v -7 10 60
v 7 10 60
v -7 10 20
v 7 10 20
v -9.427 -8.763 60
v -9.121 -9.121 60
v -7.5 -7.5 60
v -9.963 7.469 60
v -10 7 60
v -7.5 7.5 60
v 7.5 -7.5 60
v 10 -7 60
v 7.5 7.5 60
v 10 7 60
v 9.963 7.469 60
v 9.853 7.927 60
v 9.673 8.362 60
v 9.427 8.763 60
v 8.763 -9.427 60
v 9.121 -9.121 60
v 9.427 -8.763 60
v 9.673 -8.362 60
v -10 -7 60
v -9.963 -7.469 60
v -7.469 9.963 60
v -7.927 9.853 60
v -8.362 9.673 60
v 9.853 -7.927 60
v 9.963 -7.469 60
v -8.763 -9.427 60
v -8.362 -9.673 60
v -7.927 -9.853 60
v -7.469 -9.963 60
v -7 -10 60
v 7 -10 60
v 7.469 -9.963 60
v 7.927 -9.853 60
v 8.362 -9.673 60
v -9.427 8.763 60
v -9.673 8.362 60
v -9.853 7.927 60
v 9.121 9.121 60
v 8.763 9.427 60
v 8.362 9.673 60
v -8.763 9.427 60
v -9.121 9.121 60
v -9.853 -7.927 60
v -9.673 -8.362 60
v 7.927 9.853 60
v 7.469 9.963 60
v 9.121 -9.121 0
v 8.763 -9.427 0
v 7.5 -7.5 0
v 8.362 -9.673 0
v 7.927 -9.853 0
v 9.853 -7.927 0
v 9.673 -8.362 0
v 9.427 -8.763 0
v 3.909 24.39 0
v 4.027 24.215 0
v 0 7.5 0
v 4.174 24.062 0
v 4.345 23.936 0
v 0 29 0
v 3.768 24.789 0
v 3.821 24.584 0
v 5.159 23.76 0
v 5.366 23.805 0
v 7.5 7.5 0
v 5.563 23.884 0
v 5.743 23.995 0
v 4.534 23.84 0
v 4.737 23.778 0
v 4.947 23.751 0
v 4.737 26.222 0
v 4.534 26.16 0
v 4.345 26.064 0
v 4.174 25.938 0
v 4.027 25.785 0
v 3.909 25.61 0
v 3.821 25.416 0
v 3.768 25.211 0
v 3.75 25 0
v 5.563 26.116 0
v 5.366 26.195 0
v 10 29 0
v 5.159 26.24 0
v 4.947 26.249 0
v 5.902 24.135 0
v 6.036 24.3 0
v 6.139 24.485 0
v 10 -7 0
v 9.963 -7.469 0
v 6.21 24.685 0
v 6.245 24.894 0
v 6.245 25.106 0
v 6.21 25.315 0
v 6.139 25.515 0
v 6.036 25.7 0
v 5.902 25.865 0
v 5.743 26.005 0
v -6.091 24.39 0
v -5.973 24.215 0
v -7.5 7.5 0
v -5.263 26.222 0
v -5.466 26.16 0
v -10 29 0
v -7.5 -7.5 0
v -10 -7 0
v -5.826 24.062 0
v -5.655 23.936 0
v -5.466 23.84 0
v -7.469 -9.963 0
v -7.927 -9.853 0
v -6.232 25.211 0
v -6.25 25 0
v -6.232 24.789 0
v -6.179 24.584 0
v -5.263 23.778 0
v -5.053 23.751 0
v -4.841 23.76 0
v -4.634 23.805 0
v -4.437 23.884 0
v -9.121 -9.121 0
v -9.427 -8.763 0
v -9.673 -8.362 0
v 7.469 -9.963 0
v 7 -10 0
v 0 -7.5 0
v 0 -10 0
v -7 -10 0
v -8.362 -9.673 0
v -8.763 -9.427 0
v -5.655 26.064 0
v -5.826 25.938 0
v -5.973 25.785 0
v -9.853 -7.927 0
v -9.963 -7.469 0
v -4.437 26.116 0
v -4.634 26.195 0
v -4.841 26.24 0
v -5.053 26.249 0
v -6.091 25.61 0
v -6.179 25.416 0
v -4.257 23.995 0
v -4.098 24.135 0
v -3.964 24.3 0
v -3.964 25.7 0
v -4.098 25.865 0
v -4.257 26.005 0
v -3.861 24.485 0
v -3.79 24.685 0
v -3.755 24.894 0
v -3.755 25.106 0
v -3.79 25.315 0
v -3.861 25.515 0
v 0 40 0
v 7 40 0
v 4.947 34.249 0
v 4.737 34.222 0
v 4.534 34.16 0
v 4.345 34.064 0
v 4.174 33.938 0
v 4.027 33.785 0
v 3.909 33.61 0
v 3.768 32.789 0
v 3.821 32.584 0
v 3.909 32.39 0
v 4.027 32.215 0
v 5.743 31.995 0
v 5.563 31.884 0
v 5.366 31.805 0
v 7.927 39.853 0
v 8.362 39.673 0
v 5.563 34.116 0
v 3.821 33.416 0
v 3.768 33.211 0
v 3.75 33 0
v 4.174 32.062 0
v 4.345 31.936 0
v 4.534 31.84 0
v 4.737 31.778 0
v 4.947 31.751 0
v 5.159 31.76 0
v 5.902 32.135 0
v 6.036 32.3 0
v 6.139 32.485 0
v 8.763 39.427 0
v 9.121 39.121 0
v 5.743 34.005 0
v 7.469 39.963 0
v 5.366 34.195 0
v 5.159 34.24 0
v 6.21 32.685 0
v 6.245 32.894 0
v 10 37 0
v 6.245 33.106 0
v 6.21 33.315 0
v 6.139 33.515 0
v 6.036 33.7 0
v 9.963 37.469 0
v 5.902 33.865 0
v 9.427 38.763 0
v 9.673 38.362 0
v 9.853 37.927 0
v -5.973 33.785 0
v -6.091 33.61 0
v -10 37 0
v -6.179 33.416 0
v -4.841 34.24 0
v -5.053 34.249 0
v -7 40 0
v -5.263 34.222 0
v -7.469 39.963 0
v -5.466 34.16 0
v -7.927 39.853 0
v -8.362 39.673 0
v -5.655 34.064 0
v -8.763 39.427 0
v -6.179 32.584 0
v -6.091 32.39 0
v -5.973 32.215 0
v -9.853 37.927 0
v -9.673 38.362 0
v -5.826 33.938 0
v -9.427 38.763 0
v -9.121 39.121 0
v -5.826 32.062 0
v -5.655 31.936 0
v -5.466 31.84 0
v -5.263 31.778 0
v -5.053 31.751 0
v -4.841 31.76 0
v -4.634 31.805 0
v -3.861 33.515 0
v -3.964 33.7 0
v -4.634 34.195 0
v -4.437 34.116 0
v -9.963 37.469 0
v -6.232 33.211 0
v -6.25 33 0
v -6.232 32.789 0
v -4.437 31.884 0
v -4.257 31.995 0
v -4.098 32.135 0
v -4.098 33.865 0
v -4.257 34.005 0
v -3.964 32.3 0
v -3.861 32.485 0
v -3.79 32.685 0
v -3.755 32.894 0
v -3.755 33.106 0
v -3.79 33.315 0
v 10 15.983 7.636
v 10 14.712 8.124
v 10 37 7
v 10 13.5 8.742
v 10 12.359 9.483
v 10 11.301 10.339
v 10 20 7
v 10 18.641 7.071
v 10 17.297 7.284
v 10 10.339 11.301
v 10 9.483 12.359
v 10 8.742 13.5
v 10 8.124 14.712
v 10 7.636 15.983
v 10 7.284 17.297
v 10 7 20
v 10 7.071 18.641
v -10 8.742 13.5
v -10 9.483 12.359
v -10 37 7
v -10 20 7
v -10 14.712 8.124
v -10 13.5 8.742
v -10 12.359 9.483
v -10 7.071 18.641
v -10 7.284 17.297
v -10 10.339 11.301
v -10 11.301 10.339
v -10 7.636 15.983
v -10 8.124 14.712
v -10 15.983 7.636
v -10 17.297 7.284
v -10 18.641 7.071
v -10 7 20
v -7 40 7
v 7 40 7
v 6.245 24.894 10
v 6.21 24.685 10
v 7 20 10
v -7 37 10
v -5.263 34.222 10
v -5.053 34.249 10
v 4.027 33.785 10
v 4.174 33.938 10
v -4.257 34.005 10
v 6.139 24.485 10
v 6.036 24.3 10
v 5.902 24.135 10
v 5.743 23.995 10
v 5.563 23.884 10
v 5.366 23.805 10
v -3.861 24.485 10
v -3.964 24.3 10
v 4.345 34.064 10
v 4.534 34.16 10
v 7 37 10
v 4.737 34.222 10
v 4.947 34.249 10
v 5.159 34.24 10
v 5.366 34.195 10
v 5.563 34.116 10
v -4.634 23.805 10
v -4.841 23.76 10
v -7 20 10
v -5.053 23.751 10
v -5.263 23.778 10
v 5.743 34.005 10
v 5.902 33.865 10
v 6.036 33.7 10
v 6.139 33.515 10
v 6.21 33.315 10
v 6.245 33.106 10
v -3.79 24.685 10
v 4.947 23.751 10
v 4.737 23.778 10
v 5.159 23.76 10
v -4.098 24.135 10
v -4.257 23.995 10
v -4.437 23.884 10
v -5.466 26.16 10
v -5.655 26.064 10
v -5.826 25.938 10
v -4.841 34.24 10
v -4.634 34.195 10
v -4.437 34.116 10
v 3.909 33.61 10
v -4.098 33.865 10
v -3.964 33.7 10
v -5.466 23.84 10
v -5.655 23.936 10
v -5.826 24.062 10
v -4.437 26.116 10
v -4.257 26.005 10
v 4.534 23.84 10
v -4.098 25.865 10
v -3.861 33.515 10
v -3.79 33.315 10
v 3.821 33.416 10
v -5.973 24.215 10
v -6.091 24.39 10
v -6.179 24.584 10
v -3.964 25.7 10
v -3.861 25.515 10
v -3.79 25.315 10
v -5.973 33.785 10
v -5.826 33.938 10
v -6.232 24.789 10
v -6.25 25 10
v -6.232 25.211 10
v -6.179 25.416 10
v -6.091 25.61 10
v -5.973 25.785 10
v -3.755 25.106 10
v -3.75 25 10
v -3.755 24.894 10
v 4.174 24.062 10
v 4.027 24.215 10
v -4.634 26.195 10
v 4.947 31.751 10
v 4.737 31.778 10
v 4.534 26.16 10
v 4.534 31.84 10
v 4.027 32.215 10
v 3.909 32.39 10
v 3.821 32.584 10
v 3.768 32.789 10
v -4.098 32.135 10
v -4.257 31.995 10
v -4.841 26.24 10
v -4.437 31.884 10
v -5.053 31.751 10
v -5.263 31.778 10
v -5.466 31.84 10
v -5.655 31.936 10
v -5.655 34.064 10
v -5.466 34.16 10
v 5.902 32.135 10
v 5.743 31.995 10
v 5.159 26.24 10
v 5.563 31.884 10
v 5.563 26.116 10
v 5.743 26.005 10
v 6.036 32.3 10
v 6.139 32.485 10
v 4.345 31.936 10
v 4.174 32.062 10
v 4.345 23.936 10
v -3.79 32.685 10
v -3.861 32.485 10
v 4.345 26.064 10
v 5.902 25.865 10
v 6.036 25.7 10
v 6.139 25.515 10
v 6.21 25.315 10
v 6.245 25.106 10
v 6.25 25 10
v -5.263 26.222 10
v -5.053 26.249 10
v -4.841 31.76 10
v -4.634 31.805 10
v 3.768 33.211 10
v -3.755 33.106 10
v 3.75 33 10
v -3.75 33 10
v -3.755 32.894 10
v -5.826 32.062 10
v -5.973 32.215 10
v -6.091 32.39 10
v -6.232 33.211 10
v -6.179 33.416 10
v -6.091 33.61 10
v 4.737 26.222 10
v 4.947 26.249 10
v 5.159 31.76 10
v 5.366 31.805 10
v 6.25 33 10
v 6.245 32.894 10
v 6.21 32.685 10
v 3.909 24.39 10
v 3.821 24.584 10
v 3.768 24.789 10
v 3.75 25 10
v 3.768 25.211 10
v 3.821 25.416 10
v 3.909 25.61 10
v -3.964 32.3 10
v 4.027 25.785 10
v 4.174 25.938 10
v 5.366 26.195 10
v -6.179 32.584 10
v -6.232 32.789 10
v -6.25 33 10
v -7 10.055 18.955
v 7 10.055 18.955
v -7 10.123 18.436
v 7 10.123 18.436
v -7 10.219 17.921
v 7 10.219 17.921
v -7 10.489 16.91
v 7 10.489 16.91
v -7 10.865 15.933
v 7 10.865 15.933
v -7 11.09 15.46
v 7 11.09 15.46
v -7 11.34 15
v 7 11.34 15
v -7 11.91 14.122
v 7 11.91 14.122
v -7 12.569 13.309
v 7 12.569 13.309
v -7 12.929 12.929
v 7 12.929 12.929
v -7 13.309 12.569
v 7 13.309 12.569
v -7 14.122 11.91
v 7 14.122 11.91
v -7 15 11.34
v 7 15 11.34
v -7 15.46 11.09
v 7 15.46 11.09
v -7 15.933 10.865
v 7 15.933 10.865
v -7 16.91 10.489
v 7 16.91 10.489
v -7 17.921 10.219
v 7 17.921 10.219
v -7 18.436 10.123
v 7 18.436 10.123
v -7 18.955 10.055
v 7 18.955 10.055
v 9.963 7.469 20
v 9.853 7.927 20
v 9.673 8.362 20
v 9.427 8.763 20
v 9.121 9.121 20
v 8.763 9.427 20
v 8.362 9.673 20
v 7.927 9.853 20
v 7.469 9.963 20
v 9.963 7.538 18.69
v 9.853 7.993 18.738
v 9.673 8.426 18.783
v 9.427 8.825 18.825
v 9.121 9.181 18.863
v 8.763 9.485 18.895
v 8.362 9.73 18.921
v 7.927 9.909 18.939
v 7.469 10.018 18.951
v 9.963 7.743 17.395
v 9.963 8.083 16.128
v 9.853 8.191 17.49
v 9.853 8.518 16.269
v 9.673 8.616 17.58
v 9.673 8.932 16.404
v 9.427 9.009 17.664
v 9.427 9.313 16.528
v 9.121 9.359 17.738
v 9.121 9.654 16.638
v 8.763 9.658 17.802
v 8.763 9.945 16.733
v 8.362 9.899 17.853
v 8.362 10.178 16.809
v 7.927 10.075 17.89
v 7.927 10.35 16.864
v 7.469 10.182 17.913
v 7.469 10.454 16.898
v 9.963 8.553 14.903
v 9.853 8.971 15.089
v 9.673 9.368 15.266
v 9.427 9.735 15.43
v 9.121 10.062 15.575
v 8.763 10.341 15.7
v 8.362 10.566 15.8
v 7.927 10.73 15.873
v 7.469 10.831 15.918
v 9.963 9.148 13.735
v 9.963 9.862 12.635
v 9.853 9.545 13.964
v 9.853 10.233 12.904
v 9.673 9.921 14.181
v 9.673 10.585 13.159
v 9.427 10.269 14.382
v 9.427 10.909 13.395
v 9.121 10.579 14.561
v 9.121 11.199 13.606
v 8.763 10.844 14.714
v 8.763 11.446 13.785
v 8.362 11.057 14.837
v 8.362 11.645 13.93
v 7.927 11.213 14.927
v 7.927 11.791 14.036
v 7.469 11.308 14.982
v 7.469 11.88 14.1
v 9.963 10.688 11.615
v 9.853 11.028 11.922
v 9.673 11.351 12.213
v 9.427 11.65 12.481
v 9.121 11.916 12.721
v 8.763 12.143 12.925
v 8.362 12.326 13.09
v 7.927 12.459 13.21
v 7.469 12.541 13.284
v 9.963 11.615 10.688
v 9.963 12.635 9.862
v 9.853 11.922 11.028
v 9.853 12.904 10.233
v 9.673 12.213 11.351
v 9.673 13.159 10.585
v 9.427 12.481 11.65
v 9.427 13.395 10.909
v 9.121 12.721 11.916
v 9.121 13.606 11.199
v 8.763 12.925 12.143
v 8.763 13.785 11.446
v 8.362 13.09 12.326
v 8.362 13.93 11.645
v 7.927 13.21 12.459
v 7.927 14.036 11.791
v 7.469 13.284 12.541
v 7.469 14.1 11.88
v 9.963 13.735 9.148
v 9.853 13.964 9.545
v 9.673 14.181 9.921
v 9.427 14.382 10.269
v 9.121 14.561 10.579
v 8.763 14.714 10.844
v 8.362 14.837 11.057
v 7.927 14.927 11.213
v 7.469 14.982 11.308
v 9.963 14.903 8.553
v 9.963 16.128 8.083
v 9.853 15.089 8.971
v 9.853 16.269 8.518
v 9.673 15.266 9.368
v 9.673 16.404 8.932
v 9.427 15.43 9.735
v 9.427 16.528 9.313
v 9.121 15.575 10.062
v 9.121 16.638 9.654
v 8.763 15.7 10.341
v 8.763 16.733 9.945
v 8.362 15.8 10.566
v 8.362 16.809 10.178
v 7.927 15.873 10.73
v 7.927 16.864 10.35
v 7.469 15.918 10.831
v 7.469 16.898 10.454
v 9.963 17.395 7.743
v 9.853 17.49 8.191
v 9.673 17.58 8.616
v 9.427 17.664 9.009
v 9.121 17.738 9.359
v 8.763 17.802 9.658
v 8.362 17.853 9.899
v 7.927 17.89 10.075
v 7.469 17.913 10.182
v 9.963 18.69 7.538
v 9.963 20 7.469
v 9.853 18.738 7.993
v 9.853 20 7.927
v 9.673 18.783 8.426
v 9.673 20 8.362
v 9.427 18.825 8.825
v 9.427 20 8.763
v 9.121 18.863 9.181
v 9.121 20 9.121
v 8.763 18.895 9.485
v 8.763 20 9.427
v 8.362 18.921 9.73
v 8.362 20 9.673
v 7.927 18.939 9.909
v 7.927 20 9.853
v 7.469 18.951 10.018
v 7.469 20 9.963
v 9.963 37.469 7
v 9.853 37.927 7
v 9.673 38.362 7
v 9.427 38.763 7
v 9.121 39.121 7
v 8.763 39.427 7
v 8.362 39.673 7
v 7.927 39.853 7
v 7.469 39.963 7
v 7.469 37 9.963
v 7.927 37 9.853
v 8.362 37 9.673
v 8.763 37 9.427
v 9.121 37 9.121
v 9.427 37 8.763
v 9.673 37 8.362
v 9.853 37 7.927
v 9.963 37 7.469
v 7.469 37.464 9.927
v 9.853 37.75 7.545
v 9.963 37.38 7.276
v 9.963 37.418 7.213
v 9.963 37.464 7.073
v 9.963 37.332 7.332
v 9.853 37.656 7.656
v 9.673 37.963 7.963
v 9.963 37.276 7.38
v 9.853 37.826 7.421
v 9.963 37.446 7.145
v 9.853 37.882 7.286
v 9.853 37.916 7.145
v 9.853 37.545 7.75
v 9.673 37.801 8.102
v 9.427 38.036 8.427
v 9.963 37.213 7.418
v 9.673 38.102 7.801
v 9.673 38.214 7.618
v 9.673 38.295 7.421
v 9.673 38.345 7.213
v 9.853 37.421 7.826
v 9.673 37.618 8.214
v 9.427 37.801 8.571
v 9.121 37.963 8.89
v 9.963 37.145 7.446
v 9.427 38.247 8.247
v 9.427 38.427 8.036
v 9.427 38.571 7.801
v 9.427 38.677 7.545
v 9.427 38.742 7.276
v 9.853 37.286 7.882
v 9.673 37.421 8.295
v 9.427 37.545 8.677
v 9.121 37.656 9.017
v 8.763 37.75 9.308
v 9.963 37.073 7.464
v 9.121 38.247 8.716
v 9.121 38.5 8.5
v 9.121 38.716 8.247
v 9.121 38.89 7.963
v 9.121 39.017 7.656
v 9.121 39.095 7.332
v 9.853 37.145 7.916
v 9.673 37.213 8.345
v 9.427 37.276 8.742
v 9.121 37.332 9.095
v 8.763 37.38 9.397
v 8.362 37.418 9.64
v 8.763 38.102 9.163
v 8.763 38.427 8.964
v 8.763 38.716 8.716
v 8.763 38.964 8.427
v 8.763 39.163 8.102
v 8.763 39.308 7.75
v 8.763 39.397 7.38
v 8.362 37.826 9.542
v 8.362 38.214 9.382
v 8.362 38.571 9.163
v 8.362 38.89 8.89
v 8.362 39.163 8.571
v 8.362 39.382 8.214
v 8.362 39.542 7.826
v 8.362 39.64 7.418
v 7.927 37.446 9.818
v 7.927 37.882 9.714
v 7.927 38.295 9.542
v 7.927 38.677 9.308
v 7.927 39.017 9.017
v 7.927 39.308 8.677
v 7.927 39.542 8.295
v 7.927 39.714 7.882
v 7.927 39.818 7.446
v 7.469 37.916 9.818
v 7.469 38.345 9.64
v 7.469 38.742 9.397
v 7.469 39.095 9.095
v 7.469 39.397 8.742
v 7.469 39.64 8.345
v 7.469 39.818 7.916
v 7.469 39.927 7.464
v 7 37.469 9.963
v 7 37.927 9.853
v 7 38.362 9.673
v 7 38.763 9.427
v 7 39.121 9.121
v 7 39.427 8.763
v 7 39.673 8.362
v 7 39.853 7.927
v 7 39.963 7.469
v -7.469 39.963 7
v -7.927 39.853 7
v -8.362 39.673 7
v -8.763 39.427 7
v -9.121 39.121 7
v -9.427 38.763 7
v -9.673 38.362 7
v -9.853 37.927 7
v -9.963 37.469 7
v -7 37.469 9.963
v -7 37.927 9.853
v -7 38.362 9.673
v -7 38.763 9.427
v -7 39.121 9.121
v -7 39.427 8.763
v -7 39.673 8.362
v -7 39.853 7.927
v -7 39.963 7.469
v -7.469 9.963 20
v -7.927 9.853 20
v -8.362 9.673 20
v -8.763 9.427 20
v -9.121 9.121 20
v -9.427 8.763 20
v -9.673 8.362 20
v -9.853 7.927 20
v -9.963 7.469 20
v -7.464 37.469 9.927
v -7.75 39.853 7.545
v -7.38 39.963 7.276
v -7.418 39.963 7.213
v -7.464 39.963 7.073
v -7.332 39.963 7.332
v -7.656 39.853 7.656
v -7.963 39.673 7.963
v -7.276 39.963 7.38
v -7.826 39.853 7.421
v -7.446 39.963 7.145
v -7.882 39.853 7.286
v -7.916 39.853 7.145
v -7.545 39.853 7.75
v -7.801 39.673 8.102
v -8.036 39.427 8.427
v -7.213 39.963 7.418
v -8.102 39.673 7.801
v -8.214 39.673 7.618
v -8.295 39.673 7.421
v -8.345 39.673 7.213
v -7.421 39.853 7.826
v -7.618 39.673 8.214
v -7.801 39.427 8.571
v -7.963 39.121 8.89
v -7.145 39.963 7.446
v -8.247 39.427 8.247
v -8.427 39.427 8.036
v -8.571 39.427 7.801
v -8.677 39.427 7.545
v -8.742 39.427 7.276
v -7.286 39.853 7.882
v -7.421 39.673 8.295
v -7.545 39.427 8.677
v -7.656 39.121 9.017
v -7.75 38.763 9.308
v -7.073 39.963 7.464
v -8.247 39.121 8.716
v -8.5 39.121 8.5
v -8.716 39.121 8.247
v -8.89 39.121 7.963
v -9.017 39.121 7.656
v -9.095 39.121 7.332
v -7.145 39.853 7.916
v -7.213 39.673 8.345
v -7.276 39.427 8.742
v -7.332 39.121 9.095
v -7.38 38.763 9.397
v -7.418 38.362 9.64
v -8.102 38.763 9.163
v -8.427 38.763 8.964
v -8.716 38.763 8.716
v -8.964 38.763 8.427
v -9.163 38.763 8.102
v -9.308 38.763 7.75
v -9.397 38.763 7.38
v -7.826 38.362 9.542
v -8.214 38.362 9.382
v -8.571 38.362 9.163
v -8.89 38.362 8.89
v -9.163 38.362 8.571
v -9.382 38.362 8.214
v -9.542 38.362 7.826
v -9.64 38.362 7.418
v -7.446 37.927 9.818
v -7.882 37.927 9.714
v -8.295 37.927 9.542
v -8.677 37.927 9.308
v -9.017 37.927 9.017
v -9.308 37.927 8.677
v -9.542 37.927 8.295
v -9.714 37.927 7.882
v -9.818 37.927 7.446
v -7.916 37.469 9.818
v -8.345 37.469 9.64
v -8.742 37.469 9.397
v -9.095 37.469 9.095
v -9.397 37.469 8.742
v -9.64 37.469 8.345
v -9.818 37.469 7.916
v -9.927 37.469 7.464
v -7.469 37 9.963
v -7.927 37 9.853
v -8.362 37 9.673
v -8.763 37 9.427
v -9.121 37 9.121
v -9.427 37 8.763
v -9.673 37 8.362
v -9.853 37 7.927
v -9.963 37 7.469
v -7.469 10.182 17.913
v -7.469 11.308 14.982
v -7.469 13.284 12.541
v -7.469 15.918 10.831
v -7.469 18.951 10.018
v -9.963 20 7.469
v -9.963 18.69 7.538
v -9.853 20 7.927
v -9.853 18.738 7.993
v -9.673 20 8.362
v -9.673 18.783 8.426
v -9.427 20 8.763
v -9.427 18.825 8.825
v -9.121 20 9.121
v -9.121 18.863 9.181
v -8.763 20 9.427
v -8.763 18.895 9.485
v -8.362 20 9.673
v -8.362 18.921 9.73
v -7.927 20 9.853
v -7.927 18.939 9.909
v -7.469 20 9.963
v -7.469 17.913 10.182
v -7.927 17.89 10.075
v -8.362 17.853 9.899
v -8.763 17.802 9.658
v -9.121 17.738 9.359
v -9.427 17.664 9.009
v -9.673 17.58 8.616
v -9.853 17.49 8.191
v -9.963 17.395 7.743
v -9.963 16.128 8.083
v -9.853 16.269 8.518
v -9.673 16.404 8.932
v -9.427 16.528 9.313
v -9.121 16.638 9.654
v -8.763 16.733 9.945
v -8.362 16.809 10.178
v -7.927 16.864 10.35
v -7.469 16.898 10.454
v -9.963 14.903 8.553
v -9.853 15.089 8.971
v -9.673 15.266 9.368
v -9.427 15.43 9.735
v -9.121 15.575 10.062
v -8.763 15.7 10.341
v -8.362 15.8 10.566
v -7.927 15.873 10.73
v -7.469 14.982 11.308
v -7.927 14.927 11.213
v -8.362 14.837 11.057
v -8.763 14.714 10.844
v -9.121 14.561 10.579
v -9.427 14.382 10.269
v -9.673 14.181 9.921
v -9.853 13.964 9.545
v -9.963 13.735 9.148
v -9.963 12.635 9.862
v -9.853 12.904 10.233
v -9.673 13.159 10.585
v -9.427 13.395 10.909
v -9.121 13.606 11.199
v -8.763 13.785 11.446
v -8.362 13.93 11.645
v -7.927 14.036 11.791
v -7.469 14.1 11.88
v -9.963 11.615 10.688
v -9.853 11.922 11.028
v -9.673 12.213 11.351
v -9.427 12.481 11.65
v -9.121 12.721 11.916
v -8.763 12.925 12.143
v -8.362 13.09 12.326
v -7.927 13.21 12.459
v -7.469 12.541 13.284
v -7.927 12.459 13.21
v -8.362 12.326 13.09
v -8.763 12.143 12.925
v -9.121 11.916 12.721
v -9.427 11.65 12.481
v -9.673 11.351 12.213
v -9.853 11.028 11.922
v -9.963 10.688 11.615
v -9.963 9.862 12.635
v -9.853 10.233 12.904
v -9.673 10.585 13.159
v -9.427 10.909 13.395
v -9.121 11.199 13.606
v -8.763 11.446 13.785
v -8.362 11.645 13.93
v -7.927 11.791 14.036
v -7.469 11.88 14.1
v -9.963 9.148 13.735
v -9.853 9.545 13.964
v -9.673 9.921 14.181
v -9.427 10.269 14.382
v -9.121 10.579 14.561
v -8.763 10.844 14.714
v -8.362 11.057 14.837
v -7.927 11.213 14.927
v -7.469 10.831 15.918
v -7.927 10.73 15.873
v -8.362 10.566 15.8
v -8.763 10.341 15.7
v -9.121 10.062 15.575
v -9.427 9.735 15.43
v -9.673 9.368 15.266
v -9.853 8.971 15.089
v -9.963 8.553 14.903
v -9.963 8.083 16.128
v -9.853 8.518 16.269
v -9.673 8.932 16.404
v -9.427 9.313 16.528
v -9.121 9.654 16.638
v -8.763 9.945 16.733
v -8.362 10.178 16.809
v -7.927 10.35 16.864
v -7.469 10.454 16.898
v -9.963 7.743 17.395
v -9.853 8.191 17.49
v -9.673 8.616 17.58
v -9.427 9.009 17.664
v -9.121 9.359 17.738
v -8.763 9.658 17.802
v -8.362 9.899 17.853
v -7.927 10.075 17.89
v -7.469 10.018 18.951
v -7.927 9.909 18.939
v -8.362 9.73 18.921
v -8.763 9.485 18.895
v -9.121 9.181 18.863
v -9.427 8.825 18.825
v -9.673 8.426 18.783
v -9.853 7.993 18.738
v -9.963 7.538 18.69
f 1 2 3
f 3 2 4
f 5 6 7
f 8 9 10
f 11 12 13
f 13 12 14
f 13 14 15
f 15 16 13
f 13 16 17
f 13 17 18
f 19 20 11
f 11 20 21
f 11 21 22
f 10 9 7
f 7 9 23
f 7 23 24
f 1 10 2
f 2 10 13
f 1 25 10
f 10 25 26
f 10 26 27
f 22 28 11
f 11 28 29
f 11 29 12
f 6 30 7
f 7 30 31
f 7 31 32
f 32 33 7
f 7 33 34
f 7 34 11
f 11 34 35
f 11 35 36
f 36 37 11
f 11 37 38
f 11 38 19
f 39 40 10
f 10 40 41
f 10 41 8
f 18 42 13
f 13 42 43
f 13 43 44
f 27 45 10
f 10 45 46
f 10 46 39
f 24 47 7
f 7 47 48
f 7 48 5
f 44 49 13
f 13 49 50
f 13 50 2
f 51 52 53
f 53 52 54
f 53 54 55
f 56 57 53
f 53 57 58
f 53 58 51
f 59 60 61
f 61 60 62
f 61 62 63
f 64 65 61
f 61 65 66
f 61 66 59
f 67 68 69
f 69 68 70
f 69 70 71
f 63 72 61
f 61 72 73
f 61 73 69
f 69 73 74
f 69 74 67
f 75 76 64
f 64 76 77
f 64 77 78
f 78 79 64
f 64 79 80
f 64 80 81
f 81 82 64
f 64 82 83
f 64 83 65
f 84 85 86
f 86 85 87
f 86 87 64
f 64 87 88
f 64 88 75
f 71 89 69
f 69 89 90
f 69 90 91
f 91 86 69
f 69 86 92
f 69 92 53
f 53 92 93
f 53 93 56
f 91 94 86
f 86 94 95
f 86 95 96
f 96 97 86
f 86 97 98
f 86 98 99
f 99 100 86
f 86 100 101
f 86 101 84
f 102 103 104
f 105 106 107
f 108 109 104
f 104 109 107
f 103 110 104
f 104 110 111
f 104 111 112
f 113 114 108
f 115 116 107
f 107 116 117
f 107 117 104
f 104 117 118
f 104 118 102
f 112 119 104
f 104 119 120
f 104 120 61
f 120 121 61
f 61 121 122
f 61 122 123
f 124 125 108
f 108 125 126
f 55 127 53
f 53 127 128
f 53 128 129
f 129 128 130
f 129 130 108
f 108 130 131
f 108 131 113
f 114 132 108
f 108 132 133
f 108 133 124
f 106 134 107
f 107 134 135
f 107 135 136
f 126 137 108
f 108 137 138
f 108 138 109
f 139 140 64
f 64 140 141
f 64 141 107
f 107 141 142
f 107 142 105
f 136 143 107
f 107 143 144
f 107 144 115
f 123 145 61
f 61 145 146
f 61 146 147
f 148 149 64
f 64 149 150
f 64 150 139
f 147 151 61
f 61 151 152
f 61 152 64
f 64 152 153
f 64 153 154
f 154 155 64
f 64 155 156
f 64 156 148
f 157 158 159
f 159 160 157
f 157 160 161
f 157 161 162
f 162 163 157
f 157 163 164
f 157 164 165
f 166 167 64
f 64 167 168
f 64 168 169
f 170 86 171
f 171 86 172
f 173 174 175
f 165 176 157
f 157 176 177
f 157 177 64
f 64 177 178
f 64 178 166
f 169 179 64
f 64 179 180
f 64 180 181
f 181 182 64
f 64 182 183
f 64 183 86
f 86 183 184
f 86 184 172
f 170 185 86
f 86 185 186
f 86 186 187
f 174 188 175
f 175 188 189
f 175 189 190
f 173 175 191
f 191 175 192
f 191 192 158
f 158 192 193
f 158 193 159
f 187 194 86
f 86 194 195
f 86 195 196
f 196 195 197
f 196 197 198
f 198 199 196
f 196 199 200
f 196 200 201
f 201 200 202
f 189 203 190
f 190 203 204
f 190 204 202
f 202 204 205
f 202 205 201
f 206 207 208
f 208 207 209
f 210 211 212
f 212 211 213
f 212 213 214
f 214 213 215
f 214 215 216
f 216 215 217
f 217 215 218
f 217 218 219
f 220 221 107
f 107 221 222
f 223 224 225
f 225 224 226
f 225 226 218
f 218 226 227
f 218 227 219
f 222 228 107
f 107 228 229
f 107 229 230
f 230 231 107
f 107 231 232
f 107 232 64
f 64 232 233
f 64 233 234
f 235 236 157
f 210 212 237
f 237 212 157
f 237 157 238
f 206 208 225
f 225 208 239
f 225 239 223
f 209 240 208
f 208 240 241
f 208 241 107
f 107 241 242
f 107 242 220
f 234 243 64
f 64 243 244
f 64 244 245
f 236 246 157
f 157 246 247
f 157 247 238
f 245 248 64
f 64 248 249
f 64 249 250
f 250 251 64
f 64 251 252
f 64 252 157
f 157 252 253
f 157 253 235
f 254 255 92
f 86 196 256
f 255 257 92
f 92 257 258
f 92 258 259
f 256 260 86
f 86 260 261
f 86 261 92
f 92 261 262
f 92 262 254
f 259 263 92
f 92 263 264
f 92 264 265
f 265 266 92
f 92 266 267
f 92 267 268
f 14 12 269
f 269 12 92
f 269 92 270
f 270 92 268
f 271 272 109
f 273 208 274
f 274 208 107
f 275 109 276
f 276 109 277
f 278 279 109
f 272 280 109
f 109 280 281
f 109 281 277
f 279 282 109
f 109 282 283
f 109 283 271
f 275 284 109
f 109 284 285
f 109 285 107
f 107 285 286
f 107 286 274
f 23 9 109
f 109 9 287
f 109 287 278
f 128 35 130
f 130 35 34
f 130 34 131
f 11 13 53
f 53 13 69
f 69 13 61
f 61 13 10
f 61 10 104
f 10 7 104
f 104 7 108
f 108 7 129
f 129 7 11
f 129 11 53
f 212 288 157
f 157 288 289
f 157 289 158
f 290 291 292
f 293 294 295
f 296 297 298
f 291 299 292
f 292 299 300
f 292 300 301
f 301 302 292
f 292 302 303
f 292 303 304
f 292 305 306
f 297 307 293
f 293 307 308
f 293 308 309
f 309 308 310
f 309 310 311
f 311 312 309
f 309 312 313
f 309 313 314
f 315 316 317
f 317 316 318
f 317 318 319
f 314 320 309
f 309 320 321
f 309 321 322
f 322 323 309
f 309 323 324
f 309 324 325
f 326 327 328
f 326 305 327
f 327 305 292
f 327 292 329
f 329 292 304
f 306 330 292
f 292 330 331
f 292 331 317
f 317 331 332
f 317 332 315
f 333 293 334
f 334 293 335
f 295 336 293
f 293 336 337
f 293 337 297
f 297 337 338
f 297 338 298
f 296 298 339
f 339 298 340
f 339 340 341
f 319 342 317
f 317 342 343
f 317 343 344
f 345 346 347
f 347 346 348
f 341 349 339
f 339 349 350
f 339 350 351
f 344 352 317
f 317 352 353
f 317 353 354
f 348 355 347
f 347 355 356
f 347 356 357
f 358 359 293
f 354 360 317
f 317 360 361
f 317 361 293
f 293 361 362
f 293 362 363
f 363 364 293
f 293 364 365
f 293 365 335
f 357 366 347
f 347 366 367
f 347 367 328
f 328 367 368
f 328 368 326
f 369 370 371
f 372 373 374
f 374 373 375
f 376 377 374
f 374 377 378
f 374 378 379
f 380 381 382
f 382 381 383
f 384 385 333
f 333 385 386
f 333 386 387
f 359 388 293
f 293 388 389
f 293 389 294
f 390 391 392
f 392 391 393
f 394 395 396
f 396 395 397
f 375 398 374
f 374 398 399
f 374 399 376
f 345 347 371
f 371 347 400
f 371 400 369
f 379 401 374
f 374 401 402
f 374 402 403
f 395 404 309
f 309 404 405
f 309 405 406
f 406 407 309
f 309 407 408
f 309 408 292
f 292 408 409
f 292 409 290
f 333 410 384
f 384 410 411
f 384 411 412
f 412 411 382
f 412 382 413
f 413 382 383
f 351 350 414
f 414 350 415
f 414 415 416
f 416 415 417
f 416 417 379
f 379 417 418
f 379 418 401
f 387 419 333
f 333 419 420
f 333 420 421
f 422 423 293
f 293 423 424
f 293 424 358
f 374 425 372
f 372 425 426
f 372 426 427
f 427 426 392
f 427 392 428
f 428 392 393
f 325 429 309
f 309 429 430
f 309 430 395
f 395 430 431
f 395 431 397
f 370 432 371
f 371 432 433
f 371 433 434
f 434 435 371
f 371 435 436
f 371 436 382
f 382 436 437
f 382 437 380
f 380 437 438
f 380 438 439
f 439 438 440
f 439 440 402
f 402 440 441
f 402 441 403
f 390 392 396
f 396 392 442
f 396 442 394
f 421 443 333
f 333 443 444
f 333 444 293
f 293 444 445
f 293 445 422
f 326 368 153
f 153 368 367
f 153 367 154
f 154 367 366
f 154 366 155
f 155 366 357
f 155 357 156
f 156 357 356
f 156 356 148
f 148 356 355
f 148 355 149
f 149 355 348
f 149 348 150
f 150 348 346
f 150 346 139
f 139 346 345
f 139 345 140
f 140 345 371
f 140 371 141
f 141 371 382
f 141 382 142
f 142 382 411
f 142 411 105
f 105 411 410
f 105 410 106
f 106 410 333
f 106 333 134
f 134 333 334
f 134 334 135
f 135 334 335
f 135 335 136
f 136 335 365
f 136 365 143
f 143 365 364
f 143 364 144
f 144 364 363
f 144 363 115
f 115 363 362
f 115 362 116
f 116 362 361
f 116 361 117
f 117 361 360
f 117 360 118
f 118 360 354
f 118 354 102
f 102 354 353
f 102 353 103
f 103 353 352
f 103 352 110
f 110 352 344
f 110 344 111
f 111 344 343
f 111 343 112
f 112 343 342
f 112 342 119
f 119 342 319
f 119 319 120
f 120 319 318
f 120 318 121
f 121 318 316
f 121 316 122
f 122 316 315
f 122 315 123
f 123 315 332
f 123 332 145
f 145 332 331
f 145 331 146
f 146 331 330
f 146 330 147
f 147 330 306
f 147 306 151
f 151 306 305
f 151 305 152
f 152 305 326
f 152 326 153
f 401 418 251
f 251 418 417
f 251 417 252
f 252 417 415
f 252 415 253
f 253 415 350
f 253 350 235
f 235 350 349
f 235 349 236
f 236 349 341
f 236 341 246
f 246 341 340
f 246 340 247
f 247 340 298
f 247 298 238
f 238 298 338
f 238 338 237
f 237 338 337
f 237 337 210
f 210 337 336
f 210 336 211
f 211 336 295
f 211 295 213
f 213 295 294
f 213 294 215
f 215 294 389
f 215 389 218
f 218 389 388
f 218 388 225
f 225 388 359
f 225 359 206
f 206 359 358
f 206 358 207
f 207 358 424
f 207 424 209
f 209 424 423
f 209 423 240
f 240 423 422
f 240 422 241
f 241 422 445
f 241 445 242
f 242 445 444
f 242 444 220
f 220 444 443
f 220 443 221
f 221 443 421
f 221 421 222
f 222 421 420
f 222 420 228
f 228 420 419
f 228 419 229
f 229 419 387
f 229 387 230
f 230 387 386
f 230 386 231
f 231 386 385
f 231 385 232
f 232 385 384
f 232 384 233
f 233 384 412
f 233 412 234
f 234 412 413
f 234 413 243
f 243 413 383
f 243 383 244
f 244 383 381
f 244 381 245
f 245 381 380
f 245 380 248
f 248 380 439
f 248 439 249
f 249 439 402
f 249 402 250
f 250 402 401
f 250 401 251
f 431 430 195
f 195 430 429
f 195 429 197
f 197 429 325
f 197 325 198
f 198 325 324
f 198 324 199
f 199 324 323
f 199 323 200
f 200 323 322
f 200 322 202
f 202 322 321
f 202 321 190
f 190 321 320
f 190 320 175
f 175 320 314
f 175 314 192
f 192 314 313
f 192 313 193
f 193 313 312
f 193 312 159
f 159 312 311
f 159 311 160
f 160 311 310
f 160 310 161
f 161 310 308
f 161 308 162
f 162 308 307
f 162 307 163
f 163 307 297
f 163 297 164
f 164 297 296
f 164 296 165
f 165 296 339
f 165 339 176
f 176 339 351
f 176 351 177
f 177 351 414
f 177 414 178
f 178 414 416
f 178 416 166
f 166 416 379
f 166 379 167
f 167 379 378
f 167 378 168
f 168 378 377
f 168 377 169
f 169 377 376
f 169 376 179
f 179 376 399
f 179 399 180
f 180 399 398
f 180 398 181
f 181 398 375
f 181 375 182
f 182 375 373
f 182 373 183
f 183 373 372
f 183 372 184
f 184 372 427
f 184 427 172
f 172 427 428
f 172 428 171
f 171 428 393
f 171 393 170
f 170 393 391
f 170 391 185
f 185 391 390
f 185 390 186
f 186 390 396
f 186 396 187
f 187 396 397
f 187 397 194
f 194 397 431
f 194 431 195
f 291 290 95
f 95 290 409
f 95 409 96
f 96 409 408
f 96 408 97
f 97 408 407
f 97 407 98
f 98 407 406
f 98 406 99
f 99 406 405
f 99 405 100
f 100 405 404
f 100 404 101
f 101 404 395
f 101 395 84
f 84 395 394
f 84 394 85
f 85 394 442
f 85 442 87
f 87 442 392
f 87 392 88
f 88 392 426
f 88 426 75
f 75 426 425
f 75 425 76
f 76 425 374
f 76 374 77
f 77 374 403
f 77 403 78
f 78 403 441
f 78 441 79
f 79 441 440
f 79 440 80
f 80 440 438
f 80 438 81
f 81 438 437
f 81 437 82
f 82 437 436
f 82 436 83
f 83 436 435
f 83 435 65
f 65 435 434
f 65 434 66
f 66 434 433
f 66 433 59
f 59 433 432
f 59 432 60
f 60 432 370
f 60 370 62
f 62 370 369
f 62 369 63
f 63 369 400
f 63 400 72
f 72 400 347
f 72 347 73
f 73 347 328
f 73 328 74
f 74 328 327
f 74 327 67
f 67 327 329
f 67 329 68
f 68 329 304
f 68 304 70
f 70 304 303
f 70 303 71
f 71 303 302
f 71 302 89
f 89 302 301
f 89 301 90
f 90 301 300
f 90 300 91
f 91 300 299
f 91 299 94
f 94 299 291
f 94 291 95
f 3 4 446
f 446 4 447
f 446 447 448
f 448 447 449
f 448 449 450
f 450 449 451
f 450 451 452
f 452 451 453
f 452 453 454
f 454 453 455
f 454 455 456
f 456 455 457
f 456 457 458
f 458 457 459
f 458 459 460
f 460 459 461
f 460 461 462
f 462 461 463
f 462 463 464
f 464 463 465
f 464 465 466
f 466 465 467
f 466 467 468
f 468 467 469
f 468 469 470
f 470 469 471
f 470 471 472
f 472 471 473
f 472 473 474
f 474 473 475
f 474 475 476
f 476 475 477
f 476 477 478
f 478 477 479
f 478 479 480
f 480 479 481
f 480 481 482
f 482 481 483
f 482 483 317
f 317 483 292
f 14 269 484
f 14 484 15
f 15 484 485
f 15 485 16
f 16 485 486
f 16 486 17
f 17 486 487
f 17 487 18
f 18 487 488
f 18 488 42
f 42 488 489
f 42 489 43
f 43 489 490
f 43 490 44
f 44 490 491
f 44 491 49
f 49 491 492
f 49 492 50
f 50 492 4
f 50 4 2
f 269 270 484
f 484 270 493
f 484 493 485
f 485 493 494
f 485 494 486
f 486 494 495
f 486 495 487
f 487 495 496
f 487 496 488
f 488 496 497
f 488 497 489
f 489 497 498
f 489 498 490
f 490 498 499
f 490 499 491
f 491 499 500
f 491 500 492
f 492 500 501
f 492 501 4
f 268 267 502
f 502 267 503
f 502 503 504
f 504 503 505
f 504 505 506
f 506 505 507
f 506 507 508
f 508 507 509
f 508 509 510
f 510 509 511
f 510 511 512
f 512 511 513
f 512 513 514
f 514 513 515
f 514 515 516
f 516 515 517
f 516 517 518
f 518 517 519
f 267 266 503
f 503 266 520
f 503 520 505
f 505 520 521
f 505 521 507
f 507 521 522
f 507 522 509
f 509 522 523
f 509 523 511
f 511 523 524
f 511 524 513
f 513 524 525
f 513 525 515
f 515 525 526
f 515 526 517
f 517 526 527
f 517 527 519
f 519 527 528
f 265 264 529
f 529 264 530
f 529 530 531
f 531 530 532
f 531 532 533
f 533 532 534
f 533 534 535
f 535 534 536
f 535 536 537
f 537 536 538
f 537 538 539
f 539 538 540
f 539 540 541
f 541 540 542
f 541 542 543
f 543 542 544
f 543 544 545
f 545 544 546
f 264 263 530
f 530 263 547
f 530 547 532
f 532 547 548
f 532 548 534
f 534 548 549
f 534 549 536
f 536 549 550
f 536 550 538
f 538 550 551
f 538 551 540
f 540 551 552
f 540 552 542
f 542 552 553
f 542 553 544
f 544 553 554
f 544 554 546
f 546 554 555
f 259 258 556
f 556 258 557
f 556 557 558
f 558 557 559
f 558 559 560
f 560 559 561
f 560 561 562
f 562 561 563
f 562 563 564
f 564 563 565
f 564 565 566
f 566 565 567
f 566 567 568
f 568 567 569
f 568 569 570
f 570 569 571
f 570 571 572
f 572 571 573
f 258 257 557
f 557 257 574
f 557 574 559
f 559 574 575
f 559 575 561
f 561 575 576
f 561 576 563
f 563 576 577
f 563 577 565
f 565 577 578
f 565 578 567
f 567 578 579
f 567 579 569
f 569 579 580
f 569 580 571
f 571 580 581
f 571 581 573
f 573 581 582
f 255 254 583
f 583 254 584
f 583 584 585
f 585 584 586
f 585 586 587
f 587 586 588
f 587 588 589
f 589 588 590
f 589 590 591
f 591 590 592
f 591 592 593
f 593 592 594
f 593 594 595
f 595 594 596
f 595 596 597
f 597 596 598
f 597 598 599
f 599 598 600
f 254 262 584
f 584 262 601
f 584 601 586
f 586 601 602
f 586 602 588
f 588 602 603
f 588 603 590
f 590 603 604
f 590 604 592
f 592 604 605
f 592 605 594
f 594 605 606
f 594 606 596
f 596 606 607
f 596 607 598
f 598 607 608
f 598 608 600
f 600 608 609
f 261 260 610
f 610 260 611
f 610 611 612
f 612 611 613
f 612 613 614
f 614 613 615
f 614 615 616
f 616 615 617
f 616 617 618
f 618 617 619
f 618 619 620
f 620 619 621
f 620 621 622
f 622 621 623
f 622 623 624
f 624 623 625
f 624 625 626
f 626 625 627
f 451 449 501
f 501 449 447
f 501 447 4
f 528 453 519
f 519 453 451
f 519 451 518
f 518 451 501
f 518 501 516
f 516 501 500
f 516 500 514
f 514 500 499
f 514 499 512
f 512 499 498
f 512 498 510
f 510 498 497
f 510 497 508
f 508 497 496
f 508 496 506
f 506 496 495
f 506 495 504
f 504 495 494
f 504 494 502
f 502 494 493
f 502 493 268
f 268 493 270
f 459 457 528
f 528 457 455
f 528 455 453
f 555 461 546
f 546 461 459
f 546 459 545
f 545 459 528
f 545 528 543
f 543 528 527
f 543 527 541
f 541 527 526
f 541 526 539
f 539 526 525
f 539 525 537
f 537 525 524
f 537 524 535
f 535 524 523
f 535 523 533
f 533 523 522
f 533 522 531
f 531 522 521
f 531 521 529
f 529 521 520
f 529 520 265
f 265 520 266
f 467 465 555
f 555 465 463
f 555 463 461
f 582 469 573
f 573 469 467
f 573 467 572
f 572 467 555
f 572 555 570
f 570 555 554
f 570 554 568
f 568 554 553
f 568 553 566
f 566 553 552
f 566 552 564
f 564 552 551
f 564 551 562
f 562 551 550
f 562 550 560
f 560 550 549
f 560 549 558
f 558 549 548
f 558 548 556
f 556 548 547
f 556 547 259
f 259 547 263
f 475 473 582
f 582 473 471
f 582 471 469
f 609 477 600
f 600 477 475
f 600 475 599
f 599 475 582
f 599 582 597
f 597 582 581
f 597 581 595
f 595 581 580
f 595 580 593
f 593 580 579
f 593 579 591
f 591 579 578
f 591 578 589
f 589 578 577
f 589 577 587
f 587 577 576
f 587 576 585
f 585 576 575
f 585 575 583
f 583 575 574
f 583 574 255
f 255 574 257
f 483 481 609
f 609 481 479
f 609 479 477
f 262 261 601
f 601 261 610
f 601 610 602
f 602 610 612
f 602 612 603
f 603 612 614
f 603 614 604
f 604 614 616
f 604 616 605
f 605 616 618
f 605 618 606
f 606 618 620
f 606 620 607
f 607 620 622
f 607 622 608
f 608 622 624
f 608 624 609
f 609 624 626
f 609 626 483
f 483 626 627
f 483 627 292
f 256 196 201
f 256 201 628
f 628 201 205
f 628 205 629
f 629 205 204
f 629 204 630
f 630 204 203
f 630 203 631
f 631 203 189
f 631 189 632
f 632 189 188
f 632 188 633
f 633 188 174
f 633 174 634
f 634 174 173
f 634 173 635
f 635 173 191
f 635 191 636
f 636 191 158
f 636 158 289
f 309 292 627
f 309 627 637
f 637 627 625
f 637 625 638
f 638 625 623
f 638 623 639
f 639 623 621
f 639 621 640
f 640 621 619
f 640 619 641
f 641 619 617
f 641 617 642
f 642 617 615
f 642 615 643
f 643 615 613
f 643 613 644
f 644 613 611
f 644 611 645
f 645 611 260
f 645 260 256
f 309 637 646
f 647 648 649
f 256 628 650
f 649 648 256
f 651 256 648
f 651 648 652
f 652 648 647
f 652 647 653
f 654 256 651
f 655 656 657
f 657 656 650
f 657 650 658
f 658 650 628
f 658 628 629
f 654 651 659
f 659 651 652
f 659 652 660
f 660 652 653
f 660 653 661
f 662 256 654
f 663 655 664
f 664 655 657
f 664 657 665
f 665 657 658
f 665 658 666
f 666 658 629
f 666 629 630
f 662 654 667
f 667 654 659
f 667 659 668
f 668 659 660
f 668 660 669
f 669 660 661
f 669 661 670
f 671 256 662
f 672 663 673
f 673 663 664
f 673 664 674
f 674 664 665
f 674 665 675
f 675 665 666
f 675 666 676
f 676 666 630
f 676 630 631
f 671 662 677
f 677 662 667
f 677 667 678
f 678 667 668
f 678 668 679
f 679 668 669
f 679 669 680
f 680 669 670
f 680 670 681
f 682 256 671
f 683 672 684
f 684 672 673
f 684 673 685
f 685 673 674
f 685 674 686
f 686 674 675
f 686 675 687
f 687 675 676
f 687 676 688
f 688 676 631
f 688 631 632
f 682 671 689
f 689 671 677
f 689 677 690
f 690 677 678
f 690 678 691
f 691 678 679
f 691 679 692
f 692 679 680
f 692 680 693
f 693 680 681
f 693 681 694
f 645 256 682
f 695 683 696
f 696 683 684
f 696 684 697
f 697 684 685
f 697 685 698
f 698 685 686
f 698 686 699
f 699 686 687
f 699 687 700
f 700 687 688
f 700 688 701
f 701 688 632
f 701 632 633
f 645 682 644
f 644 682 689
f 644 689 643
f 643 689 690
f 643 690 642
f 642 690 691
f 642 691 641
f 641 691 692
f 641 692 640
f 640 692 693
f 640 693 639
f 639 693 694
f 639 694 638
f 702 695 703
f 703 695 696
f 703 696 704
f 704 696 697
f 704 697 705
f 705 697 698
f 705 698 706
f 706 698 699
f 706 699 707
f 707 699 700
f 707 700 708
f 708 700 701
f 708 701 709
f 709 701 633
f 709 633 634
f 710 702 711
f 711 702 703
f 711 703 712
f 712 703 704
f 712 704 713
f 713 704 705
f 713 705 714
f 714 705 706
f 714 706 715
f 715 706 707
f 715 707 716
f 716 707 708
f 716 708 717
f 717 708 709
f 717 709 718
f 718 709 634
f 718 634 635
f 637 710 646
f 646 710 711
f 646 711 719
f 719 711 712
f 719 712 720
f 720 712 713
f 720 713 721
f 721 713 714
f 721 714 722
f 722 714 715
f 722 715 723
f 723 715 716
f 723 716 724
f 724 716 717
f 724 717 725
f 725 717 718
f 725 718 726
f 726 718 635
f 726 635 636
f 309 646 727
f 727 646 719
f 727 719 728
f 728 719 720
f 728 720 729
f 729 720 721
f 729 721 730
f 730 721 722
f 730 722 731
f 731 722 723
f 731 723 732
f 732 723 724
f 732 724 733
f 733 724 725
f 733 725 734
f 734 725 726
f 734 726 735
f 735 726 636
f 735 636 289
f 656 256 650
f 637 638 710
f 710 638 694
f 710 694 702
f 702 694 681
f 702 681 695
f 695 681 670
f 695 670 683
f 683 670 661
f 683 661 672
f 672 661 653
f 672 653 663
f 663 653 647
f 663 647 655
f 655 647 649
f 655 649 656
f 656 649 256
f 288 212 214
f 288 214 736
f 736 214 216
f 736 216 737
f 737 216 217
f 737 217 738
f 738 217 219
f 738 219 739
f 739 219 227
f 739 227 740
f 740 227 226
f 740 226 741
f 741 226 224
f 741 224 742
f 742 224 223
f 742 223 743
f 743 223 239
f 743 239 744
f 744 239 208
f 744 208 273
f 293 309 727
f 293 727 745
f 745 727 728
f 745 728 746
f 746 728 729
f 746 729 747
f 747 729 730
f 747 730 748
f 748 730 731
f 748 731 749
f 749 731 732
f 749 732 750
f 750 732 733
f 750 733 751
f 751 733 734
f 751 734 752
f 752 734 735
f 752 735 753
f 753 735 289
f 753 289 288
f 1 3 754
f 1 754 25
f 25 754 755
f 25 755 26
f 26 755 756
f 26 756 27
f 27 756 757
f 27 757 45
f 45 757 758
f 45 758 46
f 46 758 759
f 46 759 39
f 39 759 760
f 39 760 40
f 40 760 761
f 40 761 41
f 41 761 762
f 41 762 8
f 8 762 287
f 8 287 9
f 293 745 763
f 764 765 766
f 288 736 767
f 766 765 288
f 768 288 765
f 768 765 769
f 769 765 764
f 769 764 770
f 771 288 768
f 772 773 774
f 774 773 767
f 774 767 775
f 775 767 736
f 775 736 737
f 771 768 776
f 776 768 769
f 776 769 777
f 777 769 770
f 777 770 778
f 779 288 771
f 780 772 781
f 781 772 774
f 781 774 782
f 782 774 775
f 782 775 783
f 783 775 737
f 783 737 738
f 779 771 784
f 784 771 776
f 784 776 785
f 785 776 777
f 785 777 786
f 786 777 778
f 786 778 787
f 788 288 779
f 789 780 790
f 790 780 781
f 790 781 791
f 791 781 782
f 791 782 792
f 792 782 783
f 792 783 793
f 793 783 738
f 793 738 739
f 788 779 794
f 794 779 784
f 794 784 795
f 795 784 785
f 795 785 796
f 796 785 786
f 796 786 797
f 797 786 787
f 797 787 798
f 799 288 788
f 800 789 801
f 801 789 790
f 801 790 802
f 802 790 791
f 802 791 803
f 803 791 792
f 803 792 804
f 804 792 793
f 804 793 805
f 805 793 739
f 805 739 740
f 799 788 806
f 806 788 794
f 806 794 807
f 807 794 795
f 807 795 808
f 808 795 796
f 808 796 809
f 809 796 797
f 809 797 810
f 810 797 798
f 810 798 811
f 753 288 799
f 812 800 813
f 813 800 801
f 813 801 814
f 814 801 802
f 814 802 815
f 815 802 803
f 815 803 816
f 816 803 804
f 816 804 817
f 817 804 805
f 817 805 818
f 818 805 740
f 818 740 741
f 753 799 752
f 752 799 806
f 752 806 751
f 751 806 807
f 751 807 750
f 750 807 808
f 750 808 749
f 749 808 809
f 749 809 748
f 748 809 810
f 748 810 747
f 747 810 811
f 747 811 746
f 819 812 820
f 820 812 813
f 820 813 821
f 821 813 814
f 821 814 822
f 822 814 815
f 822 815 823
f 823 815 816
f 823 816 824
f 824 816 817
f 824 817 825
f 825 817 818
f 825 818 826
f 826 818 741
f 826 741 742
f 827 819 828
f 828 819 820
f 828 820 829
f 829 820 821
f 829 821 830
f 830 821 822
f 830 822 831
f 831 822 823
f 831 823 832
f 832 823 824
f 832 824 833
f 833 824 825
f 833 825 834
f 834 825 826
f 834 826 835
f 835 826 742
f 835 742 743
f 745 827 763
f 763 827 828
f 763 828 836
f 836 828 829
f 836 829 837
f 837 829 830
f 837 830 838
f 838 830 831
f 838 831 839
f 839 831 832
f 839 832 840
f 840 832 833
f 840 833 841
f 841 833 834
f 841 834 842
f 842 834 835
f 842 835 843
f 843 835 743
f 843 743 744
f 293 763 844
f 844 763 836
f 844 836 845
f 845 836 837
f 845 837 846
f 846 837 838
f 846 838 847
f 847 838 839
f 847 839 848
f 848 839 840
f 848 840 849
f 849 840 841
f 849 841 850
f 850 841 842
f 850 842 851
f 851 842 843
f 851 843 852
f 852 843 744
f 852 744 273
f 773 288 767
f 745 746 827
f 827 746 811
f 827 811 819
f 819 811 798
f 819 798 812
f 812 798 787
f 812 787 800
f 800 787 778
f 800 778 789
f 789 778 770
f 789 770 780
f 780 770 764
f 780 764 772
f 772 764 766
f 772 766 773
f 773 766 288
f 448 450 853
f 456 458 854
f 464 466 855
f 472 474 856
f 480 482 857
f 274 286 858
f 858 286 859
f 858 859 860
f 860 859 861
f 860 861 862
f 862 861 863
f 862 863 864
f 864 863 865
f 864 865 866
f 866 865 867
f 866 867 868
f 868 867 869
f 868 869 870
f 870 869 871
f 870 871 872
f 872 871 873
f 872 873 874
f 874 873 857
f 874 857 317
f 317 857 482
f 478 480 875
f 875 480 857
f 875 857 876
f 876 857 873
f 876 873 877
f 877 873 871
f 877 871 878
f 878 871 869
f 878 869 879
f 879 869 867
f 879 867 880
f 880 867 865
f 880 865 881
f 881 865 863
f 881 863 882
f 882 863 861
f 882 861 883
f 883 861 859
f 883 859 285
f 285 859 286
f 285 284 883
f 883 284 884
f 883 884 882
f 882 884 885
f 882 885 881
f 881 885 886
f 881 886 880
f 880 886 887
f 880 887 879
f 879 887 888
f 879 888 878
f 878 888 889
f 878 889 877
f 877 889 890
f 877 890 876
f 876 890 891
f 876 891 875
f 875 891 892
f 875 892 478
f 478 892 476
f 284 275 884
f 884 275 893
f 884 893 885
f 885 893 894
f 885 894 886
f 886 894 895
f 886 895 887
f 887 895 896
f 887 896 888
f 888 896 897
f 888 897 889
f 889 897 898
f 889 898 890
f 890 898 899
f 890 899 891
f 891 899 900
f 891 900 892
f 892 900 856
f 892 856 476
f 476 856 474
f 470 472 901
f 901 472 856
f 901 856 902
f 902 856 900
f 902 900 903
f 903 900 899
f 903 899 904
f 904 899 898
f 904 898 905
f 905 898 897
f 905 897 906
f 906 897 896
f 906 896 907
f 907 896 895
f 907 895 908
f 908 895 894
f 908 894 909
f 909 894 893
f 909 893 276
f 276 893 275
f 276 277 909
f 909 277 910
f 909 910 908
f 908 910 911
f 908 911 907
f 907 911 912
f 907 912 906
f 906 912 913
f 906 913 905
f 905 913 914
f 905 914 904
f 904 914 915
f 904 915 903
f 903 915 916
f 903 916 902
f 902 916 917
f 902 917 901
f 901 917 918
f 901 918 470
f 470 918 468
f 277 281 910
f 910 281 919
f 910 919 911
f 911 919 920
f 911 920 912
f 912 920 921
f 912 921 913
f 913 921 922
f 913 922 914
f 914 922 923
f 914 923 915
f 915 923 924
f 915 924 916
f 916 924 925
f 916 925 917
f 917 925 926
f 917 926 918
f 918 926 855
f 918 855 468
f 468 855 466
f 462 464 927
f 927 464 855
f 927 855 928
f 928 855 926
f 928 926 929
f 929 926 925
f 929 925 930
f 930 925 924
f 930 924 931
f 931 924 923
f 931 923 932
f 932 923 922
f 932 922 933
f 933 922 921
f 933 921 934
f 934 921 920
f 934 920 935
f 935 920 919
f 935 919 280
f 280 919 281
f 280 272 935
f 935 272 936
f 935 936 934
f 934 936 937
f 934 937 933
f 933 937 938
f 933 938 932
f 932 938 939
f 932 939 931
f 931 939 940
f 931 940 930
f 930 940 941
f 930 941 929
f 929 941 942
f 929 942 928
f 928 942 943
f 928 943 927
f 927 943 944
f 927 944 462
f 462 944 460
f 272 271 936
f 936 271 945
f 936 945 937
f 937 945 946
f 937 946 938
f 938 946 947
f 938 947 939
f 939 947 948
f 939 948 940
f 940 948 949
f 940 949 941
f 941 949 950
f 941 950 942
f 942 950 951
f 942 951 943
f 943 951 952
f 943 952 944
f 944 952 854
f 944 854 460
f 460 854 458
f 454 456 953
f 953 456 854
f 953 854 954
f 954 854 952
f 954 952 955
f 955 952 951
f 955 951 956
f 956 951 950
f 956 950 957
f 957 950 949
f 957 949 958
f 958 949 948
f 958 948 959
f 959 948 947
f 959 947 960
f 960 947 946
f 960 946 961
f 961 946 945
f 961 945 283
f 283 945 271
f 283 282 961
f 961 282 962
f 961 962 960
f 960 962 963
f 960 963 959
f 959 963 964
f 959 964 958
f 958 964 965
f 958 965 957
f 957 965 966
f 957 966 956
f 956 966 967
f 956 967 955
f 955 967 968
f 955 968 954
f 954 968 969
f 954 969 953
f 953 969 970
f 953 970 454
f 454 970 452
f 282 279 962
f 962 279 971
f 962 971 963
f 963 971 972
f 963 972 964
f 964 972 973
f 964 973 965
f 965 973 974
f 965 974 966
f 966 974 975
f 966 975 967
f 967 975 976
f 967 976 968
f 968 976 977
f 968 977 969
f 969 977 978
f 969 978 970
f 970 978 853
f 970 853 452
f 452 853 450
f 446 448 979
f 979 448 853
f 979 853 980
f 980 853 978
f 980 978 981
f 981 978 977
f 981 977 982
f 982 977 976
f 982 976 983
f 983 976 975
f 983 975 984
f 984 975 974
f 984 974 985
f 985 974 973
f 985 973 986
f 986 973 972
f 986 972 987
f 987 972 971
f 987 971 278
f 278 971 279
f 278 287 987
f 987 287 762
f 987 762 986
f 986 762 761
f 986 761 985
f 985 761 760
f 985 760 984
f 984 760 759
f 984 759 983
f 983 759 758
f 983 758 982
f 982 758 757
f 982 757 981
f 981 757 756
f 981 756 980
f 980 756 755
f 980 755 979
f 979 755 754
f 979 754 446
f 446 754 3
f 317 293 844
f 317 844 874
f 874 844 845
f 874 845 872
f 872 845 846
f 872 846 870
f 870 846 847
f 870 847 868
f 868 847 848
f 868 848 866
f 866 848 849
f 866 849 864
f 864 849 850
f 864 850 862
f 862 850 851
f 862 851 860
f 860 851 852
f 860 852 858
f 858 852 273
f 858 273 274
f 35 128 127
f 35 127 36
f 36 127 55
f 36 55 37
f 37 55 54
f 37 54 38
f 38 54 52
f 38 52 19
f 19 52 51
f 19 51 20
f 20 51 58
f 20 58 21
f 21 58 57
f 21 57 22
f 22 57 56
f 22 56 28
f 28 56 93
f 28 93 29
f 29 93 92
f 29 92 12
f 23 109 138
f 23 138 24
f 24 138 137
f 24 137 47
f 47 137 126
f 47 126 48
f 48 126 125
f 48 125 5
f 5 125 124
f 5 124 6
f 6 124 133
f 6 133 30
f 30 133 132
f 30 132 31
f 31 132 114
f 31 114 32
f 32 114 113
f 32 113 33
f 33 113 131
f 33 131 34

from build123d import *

# Parameters (mm, degrees)
SKETCH_4_W      = 20
SKETCH_4_H      = 20
SKETCH_4_W_2    = 15
SKETCH_4_H_2    = 15
EXTRUDE_3_DEPTH = 60
SKETCH_5_W      = 20
SKETCH_5_H      = 30
EXTRUDE_4_DEPTH = 10
M3X0_5_1_D      = 2.5
FILLET_1_R      = 10
FILLET_2_R      = 3
FILLET_3_R      = 3


with BuildPart() as part:
    # ｽｹｯﾁ4 → ﾎﾞｽ - 押し出し3 (new body)
    with BuildSketch(Plane.XY):
        Rectangle(SKETCH_4_W, SKETCH_4_H)
        Rectangle(SKETCH_4_W_2, SKETCH_4_H_2, mode=Mode.SUBTRACT)
    extrude(amount=EXTRUDE_3_DEPTH)

    # ｽｹｯﾁ5 → ﾎﾞｽ - 押し出し4 (add)
    with BuildSketch(Plane.XY):
        with Locations((0, 25)):
            Rectangle(SKETCH_5_W, SKETCH_5_H)
    extrude(amount=EXTRUDE_4_DEPTH)

    # M3x0.5 ねじ穴1 (through all)
    with Locations(Plane(origin=(0, 0, 0), x_dir=(-1, 0, 0), z_dir=(0, 0, -1))):
        with Locations((-5, 25), (-5, 33), (5, 33), (5, 25)):
            Hole(M3X0_5_1_D / 2)

    # ﾌｨﾚｯﾄ1
    fillet_1_edges = [part.edges().sort_by_distance(p)[0] for p in [
        (0, 10, 10),
    ]]
    fillet(fillet_1_edges, radius=FILLET_1_R)

    # ﾌｨﾚｯﾄ2
    fillet_2_edges = [part.edges().sort_by_distance(p)[0] for p in [
        (10, 40, 5),
        (-10, 40, 5),
        (0, 40, 10),
        (-10, 30, 10),
        (10, 30, 10),
        (10, 12.928932188, 12.928932188),
        (-10, 12.928932188, 12.928932188),
        (-10, 10, 40),
        (10, 10, 40),
    ]]
    fillet(fillet_2_edges, radius=FILLET_2_R)

    # ﾌｨﾚｯﾄ3
    fillet_3_edges = [part.edges().sort_by_distance(p)[0] for p in [
        (10, -10, 30),
        (-10, -10, 30),
    ]]
    fillet(fillet_3_edges, radius=FILLET_3_R)


solid = part.part
